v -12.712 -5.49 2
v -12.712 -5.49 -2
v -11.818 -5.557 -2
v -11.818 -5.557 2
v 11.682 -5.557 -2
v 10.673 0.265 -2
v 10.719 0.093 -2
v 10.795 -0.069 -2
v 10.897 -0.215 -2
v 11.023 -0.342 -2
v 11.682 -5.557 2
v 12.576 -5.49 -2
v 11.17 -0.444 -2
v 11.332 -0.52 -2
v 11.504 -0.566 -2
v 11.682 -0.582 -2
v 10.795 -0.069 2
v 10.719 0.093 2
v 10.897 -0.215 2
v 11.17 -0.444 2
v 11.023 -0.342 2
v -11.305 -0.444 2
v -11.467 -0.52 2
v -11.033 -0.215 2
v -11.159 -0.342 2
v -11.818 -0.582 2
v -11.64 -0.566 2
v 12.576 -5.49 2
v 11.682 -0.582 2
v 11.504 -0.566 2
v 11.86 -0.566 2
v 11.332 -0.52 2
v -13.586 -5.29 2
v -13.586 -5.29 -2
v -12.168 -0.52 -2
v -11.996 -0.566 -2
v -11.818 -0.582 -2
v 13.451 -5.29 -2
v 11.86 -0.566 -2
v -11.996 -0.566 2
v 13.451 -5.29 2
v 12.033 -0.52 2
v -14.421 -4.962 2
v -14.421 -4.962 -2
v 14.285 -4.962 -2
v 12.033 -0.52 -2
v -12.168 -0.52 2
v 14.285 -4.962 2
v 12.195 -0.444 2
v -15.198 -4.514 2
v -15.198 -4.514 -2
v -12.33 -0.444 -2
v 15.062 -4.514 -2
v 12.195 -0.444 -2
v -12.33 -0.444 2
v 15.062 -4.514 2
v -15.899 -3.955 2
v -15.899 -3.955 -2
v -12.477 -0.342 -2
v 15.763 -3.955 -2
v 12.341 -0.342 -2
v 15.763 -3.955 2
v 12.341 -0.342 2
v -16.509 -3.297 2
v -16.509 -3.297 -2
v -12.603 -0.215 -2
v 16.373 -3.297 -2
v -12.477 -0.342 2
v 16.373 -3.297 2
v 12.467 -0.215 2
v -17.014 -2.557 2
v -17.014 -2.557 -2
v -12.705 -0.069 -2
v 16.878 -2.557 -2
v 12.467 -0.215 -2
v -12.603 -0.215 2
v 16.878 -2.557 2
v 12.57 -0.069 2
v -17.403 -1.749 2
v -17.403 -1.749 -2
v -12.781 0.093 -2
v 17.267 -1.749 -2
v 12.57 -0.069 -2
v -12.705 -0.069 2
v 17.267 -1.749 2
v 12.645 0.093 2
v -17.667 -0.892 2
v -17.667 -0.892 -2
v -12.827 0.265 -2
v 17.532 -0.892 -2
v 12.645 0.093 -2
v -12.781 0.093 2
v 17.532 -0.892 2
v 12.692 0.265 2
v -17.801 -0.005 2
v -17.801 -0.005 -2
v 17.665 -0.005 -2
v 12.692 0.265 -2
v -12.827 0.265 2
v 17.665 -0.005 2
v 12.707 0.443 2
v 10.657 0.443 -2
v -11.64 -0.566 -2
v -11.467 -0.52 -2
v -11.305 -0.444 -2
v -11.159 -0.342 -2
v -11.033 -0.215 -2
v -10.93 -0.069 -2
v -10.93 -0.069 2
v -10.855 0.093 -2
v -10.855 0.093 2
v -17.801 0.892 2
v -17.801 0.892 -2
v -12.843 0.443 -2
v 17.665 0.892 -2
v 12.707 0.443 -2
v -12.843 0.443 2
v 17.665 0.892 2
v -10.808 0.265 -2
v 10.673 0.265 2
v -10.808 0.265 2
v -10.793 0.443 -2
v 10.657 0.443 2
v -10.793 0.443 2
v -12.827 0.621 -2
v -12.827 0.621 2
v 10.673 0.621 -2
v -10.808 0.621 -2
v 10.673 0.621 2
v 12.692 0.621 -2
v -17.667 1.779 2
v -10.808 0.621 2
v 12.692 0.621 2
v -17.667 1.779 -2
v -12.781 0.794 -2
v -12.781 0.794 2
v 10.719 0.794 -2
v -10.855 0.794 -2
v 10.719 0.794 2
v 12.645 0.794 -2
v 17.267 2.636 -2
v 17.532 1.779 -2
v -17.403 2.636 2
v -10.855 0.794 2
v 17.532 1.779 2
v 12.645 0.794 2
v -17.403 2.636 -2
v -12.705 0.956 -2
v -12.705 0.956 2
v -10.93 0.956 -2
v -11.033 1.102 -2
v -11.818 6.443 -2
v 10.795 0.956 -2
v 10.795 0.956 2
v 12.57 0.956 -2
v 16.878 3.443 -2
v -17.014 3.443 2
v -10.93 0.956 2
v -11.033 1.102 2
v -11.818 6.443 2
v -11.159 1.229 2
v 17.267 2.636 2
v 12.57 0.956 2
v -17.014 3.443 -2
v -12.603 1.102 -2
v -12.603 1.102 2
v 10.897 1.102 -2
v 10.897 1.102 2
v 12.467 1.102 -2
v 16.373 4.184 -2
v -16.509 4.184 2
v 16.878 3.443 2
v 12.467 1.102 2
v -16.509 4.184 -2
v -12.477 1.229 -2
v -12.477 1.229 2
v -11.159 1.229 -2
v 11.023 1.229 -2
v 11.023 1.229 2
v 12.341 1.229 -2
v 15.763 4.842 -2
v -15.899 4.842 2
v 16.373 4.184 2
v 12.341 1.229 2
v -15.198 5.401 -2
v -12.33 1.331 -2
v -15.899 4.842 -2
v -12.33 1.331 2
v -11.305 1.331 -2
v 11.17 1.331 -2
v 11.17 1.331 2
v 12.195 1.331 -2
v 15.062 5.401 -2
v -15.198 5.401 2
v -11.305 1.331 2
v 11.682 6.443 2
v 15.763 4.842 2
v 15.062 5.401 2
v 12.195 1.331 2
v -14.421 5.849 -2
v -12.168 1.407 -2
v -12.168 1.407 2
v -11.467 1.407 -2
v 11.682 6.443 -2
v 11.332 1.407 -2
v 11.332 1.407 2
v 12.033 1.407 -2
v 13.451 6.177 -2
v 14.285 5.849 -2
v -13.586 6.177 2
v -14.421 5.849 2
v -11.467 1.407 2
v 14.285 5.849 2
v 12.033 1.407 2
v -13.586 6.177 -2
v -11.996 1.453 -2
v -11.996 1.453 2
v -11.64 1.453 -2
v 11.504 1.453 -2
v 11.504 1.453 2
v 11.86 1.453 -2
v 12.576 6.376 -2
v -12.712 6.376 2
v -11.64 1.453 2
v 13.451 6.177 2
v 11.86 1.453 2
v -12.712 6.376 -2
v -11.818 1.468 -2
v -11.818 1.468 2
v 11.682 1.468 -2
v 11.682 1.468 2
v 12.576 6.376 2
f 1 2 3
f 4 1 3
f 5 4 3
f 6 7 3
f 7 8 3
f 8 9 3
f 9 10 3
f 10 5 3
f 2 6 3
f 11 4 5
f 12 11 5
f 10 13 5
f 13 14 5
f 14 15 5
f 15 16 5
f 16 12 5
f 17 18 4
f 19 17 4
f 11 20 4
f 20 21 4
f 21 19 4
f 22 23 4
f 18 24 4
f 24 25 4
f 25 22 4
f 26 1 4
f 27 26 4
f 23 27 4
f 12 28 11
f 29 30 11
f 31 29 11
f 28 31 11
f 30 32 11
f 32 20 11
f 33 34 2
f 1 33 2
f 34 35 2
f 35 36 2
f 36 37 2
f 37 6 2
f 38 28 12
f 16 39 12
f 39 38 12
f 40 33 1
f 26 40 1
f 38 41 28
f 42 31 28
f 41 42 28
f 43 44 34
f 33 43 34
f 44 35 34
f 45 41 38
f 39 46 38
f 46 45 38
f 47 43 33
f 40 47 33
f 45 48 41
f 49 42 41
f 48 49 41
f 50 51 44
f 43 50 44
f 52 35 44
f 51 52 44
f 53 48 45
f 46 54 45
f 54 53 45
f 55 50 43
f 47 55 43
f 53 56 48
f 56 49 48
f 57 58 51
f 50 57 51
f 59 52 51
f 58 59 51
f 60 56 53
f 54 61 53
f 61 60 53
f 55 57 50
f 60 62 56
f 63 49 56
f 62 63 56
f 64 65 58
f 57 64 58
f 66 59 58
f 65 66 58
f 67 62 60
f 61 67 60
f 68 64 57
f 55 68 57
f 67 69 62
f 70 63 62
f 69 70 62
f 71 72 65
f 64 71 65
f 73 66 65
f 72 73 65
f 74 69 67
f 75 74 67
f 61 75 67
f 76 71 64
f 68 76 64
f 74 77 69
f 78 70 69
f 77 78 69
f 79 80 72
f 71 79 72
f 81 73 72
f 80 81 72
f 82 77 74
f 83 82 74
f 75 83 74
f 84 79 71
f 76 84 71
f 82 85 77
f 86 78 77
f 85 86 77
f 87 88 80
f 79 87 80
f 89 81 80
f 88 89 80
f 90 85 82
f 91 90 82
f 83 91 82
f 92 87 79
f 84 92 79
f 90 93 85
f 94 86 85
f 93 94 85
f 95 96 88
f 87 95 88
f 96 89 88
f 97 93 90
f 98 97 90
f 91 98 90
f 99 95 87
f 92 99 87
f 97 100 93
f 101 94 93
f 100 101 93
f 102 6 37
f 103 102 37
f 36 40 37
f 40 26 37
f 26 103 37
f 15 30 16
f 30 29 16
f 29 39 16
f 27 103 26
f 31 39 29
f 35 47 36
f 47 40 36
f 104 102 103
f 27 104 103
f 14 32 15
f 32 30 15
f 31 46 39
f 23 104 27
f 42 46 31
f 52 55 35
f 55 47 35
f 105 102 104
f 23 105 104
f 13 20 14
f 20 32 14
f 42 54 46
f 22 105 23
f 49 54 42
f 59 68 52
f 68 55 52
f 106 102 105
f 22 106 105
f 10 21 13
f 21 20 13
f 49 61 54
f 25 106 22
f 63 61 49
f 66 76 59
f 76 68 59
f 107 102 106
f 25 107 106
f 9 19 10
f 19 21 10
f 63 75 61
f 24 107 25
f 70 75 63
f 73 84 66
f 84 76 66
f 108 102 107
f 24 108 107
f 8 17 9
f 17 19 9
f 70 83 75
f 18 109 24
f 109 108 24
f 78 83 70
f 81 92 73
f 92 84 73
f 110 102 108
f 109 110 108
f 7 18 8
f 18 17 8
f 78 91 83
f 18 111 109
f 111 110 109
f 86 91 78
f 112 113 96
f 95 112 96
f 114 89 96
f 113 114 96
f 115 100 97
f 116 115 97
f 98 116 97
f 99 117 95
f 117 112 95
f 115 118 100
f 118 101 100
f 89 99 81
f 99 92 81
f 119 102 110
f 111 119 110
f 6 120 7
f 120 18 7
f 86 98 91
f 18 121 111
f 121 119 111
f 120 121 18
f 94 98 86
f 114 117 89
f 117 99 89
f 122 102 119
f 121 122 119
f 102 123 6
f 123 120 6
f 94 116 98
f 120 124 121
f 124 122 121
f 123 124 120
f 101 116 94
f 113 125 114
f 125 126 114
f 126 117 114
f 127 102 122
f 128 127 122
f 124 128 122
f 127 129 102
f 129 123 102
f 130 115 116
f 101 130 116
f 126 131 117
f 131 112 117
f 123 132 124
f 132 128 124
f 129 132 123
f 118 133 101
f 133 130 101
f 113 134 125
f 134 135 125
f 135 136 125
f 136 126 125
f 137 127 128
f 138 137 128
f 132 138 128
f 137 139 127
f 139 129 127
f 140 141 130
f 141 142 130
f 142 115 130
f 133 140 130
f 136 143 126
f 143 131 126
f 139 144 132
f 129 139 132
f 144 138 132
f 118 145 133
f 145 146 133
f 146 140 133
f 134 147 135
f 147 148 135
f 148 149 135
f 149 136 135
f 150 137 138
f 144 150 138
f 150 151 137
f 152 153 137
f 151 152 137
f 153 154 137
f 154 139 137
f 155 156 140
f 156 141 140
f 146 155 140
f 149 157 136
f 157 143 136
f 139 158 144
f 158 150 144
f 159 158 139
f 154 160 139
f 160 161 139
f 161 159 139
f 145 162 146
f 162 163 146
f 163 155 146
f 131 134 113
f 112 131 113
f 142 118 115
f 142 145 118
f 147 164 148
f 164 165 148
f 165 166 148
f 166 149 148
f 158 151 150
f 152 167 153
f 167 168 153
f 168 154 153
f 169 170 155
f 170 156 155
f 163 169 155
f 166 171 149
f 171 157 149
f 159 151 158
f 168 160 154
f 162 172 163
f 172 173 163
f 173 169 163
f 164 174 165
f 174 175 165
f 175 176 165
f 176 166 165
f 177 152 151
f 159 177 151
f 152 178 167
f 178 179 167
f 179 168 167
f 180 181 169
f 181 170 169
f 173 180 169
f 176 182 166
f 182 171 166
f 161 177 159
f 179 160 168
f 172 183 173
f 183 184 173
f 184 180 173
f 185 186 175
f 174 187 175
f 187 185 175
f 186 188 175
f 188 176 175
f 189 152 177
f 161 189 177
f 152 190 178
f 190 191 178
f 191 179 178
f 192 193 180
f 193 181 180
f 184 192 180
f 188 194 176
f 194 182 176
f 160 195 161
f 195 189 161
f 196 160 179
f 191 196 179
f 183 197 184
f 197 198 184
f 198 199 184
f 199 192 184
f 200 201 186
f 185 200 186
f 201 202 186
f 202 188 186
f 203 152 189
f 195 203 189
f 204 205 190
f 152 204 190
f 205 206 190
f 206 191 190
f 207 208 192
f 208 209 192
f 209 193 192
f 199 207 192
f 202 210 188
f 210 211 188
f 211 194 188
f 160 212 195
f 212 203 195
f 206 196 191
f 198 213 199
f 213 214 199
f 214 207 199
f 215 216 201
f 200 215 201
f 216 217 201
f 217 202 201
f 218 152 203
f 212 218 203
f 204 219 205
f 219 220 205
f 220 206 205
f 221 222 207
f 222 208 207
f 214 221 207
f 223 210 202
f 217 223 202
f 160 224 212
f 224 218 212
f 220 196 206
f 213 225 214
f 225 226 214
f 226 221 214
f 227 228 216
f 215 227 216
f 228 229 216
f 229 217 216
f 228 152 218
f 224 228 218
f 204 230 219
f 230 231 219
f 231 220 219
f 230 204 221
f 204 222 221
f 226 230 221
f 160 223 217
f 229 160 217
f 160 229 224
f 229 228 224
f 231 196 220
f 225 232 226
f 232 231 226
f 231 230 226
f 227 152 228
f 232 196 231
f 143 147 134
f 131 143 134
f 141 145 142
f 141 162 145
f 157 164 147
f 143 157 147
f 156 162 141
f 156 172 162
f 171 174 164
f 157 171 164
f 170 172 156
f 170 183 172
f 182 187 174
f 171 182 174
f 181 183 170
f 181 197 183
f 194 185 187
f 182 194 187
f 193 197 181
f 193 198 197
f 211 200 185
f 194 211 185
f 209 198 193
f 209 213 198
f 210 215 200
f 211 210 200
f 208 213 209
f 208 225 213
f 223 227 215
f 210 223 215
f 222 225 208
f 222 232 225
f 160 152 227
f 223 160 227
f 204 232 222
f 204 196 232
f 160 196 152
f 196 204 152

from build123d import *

# Parameters (mm, degrees)
BOSS_EXTRUDE1_DEPTH            = 2
TAP_DRILL_FOR_M2_5X0_45_TAP1_D = 2.05


with BuildPart() as part:
    # Sketch1 → Boss-Extrude1 (new, symmetric)
    with BuildSketch(Plane.XY):
        with BuildLine():
            Line((-11.817810242, 6.443484678), (11.682189758, 6.443484678))
            ThreePointArc((11.682189758, 6.443484678), (17.682189758, 0.443484678), (11.682189758, -5.556515322))
            Line((11.682189758, -5.556515322), (-11.817810242, -5.556515322))
            ThreePointArc((-11.817810242, -5.556515322), (-17.817810242, 0.443484678), (-11.817810242, 6.443484678))
        make_face()
    extrude(amount=BOSS_EXTRUDE1_DEPTH, both=True)

    # Tap Drill for M2.5x0.45 Tap1 (through all)
    with Locations(Plane(origin=(-11.817810242, 0.443484678, 2), x_dir=(1, 0, 0), z_dir=(0, 0, 1))):
        with Locations((0, 0), (23.5, 0)):
            Hole(TAP_DRILL_FOR_M2_5X0_45_TAP1_D / 2)


solid = part.part
